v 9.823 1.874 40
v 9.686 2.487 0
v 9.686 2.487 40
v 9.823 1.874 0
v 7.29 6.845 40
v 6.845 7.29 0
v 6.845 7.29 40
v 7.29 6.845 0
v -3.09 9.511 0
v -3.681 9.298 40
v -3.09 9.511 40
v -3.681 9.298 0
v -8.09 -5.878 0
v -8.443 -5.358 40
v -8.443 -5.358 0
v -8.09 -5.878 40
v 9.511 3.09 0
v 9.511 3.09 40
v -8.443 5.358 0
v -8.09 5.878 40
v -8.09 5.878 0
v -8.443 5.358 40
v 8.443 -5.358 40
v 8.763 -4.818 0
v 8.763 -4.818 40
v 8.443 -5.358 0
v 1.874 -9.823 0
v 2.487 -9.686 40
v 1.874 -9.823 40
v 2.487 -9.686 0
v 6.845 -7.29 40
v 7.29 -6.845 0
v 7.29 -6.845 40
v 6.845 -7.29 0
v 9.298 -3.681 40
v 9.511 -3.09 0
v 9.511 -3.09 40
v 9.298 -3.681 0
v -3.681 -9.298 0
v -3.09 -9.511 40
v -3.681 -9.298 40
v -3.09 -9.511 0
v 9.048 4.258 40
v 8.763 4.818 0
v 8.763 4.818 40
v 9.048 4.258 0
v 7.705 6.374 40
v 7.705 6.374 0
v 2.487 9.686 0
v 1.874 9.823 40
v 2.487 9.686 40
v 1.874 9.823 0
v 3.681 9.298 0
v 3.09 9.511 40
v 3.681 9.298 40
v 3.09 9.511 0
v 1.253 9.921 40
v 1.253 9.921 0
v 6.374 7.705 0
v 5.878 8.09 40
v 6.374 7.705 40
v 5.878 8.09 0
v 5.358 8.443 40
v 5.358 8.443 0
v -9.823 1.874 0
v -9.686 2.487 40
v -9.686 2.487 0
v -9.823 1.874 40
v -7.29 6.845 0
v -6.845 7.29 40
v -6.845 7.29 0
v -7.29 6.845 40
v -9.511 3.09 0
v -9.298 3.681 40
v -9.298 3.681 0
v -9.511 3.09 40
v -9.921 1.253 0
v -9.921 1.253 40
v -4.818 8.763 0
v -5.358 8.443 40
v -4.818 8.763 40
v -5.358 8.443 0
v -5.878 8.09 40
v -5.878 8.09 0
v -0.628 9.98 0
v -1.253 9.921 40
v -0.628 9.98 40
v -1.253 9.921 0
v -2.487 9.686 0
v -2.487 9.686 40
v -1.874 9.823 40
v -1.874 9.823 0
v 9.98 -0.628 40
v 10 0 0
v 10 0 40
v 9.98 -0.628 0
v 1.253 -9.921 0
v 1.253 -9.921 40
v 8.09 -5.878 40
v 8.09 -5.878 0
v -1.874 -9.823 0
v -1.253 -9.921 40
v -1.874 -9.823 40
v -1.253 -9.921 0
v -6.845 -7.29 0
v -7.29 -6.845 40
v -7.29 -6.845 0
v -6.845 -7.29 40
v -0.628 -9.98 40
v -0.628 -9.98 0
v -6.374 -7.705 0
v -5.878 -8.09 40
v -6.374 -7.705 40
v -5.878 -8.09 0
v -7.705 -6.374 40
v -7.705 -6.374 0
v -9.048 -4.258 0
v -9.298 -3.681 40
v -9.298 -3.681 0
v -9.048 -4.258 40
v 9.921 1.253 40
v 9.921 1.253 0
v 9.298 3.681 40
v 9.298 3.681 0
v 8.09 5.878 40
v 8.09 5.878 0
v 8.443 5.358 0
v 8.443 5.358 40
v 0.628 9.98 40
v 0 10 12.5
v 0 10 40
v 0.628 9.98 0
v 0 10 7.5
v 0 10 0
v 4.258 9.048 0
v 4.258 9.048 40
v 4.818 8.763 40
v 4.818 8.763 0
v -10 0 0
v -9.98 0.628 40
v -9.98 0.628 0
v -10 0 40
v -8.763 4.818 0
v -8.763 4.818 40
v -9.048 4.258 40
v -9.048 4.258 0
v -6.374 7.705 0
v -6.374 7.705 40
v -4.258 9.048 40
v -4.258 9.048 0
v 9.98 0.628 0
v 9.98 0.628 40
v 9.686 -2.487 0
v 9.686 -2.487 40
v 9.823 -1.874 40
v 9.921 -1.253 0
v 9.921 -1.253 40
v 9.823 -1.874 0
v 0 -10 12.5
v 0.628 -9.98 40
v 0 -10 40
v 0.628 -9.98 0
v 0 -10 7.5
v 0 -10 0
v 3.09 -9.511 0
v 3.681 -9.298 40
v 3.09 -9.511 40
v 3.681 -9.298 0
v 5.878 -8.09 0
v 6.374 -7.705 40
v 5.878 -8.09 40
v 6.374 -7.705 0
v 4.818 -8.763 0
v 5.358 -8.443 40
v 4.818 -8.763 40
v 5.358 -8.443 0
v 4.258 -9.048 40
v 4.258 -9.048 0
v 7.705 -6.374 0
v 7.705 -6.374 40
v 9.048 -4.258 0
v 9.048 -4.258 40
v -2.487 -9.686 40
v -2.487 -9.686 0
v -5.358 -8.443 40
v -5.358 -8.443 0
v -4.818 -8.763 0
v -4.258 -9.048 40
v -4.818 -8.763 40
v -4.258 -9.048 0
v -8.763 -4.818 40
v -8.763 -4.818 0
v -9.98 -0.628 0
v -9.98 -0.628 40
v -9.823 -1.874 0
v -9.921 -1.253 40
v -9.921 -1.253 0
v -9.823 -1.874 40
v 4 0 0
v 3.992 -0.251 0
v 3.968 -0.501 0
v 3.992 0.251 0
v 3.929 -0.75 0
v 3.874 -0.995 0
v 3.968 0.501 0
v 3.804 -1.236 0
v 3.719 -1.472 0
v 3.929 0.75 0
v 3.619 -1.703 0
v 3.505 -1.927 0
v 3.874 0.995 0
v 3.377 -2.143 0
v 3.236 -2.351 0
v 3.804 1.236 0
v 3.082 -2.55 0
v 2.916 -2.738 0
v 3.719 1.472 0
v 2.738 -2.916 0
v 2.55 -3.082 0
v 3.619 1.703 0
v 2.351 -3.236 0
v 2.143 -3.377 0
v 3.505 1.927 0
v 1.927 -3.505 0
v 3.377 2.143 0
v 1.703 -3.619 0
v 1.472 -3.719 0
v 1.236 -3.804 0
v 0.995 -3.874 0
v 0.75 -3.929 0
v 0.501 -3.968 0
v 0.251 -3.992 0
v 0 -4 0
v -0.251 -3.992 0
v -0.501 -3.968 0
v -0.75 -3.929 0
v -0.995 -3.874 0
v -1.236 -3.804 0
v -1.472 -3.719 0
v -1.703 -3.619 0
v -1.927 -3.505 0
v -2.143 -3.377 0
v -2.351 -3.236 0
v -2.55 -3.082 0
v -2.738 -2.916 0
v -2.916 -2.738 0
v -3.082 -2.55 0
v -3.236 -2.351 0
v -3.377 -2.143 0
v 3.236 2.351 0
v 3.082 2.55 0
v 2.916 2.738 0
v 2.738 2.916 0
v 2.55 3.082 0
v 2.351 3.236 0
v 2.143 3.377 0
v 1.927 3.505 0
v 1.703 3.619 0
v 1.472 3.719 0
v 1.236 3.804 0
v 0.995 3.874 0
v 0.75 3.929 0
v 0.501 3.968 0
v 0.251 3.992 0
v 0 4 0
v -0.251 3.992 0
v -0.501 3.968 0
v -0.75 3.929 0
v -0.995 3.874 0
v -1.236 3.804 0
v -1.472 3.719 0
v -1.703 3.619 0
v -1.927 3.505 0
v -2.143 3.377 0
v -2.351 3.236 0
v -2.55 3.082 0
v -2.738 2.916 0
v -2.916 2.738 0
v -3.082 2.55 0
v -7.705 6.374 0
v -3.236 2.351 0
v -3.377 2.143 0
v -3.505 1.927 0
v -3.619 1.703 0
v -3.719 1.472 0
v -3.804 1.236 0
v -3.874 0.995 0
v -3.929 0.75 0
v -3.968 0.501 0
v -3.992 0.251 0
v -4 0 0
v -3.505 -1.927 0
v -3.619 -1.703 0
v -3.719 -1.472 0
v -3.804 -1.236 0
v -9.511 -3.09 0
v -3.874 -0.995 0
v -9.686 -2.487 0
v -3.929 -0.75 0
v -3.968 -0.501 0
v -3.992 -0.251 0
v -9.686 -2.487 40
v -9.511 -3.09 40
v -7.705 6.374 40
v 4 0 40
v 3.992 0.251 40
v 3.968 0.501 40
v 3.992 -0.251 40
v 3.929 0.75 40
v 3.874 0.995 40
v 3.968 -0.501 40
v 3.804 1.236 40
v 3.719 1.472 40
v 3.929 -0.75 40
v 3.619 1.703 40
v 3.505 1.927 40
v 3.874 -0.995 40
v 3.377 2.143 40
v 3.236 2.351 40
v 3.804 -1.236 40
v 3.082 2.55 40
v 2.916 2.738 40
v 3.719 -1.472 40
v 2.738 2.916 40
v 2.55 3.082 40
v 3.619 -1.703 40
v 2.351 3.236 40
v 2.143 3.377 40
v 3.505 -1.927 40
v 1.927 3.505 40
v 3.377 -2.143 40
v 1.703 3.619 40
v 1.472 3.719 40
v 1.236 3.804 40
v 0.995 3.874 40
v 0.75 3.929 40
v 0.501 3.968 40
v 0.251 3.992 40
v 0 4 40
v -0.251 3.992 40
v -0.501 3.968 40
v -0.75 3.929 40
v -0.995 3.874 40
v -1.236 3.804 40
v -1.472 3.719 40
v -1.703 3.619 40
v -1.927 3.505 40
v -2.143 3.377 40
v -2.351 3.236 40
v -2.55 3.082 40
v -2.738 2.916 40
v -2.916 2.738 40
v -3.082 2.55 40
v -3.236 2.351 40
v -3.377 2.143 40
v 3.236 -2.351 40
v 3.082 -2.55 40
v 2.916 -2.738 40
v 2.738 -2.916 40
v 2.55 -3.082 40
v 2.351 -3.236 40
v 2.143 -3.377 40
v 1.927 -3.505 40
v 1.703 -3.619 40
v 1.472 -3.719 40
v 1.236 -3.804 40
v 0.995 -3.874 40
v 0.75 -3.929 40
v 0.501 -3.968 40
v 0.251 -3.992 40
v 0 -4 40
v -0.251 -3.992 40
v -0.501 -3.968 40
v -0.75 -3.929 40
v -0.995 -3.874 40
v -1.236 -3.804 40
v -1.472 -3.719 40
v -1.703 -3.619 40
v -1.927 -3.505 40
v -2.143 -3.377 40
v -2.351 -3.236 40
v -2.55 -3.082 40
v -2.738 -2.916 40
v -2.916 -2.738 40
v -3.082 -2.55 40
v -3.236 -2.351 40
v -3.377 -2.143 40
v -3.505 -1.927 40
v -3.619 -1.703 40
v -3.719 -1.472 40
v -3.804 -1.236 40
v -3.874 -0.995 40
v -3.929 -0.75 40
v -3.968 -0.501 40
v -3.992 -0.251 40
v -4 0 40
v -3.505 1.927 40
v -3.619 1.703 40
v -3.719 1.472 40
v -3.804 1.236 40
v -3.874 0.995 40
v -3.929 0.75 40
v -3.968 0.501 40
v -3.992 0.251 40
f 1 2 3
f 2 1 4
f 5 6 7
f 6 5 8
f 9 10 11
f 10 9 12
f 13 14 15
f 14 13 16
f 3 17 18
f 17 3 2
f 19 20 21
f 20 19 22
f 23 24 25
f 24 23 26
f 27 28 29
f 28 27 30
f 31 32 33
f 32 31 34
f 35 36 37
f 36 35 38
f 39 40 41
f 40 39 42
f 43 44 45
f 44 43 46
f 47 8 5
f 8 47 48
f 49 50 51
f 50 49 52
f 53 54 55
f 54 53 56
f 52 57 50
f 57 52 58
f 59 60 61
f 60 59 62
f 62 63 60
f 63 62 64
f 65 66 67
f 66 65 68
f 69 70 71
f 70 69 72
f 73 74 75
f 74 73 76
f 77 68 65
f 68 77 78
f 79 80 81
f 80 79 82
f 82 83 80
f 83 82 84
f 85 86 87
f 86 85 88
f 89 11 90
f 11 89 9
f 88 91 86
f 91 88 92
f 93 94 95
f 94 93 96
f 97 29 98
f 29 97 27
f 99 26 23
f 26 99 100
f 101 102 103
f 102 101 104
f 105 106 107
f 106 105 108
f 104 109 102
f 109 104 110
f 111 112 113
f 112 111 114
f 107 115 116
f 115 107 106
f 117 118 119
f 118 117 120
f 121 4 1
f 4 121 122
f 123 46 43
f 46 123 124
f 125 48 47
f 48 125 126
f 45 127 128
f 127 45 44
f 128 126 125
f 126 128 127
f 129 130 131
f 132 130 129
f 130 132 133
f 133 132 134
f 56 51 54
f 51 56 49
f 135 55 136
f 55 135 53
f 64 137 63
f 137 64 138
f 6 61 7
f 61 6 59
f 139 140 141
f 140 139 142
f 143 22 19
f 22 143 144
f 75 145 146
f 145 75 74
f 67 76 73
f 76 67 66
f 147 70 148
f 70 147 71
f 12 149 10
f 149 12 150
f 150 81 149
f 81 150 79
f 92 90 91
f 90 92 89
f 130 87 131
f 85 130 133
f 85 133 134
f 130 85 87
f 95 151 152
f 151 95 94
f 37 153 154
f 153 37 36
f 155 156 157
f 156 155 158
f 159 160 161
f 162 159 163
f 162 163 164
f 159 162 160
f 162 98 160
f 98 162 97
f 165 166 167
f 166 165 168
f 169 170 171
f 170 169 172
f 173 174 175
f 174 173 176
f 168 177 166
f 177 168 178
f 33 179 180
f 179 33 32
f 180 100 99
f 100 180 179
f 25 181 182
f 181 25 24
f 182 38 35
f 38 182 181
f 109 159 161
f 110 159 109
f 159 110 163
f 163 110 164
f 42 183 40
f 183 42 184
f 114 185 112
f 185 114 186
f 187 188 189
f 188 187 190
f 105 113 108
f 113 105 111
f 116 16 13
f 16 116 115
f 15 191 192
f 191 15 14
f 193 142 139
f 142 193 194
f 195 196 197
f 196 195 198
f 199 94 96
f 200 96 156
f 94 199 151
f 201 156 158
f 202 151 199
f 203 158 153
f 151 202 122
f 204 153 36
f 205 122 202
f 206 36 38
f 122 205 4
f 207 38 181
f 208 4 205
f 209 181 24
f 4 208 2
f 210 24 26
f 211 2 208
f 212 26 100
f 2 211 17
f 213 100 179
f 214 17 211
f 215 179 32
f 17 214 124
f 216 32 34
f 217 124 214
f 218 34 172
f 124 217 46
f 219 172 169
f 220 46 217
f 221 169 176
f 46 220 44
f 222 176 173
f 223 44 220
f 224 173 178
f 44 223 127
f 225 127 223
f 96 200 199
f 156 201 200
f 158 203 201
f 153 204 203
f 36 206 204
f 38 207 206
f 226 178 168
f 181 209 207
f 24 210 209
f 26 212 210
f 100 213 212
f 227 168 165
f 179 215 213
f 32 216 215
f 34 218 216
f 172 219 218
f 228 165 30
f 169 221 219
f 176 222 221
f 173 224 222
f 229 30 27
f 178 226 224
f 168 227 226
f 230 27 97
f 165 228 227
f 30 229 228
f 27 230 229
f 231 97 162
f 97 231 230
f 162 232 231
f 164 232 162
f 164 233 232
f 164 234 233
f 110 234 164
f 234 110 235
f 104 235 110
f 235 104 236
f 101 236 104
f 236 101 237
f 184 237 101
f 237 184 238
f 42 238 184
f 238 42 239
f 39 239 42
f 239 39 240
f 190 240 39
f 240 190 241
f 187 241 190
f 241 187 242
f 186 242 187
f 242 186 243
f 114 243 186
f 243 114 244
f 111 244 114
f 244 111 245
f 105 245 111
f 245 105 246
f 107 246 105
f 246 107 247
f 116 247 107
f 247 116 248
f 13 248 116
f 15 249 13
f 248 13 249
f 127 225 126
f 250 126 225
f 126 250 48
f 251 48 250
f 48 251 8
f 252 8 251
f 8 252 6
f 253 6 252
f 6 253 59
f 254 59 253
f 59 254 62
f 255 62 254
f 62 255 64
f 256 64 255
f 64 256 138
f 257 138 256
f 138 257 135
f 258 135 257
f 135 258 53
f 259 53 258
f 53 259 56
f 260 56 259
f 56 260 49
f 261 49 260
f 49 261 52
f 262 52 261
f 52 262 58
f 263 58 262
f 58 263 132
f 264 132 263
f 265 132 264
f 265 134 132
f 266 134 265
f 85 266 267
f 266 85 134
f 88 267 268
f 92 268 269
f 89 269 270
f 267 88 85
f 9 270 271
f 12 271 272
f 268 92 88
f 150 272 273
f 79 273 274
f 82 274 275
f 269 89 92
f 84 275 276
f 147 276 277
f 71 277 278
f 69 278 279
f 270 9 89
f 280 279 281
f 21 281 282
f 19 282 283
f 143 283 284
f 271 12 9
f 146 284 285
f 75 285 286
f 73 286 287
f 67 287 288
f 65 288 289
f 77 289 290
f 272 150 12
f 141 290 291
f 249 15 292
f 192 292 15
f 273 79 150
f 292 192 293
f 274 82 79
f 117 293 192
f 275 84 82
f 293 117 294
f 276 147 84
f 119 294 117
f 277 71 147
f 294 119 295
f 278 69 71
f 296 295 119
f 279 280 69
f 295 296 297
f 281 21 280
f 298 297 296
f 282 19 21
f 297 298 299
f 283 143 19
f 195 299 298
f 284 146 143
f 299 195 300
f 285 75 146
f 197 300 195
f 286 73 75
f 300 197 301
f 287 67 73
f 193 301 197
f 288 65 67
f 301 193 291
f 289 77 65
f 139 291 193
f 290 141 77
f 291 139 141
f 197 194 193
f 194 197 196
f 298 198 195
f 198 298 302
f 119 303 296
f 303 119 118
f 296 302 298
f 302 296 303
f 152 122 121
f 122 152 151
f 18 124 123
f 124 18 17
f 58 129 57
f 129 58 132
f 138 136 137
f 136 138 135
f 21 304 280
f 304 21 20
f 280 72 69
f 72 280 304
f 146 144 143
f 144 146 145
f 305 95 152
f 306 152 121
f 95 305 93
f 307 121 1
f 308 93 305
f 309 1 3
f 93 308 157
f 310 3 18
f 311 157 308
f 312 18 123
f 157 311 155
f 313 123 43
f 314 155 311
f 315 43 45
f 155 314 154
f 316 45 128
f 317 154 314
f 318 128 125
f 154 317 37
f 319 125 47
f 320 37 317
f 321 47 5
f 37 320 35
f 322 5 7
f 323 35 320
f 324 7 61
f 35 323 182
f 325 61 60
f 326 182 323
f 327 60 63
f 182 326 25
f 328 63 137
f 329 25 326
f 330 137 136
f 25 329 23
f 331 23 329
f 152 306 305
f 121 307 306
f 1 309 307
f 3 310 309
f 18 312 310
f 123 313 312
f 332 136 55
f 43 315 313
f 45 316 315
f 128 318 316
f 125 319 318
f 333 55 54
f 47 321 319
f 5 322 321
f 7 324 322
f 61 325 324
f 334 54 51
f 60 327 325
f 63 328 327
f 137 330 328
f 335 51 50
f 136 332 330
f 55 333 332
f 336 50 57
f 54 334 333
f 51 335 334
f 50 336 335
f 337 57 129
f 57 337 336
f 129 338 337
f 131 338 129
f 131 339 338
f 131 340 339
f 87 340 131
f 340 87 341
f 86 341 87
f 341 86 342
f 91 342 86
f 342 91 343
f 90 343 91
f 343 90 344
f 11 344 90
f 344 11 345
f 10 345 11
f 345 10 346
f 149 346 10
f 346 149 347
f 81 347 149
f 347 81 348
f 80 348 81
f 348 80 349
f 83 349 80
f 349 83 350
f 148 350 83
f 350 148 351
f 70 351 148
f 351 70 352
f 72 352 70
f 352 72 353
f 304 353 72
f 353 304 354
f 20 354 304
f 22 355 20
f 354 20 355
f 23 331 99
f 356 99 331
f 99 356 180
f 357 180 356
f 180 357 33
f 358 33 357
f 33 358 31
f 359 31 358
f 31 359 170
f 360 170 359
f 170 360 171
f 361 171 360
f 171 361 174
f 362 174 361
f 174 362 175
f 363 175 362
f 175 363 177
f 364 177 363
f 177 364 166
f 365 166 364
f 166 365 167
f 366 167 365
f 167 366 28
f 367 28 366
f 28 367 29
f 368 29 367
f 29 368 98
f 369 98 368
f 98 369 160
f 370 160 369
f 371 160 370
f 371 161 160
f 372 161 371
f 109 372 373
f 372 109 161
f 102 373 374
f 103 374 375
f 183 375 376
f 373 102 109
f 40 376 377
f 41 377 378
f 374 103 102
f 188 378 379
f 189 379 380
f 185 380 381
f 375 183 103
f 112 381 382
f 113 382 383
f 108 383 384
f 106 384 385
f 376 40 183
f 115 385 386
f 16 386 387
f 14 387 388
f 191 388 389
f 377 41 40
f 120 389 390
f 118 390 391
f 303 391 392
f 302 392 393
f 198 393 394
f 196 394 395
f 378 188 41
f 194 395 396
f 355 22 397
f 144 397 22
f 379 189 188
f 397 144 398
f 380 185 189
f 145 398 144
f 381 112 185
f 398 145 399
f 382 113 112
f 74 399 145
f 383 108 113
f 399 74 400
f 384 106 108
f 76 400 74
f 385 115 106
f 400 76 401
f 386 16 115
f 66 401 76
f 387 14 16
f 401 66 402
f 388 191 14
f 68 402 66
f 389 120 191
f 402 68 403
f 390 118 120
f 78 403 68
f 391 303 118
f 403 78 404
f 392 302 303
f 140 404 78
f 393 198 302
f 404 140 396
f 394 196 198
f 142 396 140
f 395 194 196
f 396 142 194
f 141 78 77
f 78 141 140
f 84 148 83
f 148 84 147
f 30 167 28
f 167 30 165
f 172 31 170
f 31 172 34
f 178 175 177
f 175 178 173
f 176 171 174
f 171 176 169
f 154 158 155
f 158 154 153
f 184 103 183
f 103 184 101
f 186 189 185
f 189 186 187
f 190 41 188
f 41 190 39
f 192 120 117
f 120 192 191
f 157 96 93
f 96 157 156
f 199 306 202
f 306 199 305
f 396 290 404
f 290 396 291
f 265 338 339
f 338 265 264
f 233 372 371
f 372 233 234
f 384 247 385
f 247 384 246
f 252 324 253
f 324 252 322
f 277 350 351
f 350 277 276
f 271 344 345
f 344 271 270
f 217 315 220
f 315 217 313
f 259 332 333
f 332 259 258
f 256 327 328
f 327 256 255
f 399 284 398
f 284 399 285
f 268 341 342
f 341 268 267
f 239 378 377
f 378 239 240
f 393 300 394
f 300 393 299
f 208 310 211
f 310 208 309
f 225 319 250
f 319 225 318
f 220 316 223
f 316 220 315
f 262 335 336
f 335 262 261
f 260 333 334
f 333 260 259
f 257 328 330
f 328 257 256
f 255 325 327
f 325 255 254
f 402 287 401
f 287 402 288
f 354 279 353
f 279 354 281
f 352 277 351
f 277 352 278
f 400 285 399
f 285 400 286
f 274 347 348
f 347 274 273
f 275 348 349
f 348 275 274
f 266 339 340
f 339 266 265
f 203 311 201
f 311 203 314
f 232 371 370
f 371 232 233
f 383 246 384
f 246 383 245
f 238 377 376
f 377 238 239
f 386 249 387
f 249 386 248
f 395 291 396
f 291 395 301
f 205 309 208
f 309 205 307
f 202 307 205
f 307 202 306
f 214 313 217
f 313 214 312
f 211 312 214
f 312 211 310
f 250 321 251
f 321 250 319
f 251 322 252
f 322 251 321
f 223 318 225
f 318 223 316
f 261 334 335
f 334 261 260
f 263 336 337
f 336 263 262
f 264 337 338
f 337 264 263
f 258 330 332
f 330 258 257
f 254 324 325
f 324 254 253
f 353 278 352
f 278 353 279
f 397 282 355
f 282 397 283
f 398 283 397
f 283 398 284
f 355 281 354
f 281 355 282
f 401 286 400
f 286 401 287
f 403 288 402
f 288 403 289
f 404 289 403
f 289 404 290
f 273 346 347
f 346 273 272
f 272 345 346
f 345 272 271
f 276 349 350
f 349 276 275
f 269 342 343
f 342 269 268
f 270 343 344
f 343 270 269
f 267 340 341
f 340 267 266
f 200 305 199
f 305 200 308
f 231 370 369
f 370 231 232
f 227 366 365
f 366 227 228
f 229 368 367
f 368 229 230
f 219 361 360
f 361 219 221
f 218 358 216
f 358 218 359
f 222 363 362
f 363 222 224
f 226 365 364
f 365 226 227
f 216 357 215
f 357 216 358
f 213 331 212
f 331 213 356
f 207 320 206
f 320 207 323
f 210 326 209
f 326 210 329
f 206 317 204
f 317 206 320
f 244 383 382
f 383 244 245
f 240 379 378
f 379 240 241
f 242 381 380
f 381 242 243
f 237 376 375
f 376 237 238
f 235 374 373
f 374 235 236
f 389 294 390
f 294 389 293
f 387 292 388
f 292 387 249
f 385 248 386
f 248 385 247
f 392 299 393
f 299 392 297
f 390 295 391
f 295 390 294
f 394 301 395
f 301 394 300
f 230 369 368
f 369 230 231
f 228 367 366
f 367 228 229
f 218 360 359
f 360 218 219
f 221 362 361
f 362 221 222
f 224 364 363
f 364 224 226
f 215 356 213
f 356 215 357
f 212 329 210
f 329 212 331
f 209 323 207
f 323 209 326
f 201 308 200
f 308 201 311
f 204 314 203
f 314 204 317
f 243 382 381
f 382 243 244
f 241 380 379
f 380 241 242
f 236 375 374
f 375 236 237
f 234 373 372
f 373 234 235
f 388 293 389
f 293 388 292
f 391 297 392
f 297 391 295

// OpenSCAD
// Parameters
shaft_diameter = 20;
shaft_length = 40;
bore_diameter = 8;
side_hole_diameter = 5;
side_hole_offset = 10; // distance from center to side holes
side_hole_depth = shaft_diameter / 2 + 2;

// Main shaft body
difference() {
    // Outer cylinder
    cylinder(h = shaft_length, d = shaft_diameter, $fn = 100);

    // Central bore
    translate([0, 0, 0])
        cylinder(h = shaft_length, d = bore_diameter, $fn = 100);

    // Side holes (threaded holes for bolts)
    for (angle = [90, 270]) {
        rotate([0, 0, angle])
        translate([shaft_diameter/2, 0, shaft_length/2 - side_hole_offset])
            rotate([0, 90, 0])
                cylinder(h = side_hole_depth, d = side_hole_diameter, $fn = 60);
    }
}
